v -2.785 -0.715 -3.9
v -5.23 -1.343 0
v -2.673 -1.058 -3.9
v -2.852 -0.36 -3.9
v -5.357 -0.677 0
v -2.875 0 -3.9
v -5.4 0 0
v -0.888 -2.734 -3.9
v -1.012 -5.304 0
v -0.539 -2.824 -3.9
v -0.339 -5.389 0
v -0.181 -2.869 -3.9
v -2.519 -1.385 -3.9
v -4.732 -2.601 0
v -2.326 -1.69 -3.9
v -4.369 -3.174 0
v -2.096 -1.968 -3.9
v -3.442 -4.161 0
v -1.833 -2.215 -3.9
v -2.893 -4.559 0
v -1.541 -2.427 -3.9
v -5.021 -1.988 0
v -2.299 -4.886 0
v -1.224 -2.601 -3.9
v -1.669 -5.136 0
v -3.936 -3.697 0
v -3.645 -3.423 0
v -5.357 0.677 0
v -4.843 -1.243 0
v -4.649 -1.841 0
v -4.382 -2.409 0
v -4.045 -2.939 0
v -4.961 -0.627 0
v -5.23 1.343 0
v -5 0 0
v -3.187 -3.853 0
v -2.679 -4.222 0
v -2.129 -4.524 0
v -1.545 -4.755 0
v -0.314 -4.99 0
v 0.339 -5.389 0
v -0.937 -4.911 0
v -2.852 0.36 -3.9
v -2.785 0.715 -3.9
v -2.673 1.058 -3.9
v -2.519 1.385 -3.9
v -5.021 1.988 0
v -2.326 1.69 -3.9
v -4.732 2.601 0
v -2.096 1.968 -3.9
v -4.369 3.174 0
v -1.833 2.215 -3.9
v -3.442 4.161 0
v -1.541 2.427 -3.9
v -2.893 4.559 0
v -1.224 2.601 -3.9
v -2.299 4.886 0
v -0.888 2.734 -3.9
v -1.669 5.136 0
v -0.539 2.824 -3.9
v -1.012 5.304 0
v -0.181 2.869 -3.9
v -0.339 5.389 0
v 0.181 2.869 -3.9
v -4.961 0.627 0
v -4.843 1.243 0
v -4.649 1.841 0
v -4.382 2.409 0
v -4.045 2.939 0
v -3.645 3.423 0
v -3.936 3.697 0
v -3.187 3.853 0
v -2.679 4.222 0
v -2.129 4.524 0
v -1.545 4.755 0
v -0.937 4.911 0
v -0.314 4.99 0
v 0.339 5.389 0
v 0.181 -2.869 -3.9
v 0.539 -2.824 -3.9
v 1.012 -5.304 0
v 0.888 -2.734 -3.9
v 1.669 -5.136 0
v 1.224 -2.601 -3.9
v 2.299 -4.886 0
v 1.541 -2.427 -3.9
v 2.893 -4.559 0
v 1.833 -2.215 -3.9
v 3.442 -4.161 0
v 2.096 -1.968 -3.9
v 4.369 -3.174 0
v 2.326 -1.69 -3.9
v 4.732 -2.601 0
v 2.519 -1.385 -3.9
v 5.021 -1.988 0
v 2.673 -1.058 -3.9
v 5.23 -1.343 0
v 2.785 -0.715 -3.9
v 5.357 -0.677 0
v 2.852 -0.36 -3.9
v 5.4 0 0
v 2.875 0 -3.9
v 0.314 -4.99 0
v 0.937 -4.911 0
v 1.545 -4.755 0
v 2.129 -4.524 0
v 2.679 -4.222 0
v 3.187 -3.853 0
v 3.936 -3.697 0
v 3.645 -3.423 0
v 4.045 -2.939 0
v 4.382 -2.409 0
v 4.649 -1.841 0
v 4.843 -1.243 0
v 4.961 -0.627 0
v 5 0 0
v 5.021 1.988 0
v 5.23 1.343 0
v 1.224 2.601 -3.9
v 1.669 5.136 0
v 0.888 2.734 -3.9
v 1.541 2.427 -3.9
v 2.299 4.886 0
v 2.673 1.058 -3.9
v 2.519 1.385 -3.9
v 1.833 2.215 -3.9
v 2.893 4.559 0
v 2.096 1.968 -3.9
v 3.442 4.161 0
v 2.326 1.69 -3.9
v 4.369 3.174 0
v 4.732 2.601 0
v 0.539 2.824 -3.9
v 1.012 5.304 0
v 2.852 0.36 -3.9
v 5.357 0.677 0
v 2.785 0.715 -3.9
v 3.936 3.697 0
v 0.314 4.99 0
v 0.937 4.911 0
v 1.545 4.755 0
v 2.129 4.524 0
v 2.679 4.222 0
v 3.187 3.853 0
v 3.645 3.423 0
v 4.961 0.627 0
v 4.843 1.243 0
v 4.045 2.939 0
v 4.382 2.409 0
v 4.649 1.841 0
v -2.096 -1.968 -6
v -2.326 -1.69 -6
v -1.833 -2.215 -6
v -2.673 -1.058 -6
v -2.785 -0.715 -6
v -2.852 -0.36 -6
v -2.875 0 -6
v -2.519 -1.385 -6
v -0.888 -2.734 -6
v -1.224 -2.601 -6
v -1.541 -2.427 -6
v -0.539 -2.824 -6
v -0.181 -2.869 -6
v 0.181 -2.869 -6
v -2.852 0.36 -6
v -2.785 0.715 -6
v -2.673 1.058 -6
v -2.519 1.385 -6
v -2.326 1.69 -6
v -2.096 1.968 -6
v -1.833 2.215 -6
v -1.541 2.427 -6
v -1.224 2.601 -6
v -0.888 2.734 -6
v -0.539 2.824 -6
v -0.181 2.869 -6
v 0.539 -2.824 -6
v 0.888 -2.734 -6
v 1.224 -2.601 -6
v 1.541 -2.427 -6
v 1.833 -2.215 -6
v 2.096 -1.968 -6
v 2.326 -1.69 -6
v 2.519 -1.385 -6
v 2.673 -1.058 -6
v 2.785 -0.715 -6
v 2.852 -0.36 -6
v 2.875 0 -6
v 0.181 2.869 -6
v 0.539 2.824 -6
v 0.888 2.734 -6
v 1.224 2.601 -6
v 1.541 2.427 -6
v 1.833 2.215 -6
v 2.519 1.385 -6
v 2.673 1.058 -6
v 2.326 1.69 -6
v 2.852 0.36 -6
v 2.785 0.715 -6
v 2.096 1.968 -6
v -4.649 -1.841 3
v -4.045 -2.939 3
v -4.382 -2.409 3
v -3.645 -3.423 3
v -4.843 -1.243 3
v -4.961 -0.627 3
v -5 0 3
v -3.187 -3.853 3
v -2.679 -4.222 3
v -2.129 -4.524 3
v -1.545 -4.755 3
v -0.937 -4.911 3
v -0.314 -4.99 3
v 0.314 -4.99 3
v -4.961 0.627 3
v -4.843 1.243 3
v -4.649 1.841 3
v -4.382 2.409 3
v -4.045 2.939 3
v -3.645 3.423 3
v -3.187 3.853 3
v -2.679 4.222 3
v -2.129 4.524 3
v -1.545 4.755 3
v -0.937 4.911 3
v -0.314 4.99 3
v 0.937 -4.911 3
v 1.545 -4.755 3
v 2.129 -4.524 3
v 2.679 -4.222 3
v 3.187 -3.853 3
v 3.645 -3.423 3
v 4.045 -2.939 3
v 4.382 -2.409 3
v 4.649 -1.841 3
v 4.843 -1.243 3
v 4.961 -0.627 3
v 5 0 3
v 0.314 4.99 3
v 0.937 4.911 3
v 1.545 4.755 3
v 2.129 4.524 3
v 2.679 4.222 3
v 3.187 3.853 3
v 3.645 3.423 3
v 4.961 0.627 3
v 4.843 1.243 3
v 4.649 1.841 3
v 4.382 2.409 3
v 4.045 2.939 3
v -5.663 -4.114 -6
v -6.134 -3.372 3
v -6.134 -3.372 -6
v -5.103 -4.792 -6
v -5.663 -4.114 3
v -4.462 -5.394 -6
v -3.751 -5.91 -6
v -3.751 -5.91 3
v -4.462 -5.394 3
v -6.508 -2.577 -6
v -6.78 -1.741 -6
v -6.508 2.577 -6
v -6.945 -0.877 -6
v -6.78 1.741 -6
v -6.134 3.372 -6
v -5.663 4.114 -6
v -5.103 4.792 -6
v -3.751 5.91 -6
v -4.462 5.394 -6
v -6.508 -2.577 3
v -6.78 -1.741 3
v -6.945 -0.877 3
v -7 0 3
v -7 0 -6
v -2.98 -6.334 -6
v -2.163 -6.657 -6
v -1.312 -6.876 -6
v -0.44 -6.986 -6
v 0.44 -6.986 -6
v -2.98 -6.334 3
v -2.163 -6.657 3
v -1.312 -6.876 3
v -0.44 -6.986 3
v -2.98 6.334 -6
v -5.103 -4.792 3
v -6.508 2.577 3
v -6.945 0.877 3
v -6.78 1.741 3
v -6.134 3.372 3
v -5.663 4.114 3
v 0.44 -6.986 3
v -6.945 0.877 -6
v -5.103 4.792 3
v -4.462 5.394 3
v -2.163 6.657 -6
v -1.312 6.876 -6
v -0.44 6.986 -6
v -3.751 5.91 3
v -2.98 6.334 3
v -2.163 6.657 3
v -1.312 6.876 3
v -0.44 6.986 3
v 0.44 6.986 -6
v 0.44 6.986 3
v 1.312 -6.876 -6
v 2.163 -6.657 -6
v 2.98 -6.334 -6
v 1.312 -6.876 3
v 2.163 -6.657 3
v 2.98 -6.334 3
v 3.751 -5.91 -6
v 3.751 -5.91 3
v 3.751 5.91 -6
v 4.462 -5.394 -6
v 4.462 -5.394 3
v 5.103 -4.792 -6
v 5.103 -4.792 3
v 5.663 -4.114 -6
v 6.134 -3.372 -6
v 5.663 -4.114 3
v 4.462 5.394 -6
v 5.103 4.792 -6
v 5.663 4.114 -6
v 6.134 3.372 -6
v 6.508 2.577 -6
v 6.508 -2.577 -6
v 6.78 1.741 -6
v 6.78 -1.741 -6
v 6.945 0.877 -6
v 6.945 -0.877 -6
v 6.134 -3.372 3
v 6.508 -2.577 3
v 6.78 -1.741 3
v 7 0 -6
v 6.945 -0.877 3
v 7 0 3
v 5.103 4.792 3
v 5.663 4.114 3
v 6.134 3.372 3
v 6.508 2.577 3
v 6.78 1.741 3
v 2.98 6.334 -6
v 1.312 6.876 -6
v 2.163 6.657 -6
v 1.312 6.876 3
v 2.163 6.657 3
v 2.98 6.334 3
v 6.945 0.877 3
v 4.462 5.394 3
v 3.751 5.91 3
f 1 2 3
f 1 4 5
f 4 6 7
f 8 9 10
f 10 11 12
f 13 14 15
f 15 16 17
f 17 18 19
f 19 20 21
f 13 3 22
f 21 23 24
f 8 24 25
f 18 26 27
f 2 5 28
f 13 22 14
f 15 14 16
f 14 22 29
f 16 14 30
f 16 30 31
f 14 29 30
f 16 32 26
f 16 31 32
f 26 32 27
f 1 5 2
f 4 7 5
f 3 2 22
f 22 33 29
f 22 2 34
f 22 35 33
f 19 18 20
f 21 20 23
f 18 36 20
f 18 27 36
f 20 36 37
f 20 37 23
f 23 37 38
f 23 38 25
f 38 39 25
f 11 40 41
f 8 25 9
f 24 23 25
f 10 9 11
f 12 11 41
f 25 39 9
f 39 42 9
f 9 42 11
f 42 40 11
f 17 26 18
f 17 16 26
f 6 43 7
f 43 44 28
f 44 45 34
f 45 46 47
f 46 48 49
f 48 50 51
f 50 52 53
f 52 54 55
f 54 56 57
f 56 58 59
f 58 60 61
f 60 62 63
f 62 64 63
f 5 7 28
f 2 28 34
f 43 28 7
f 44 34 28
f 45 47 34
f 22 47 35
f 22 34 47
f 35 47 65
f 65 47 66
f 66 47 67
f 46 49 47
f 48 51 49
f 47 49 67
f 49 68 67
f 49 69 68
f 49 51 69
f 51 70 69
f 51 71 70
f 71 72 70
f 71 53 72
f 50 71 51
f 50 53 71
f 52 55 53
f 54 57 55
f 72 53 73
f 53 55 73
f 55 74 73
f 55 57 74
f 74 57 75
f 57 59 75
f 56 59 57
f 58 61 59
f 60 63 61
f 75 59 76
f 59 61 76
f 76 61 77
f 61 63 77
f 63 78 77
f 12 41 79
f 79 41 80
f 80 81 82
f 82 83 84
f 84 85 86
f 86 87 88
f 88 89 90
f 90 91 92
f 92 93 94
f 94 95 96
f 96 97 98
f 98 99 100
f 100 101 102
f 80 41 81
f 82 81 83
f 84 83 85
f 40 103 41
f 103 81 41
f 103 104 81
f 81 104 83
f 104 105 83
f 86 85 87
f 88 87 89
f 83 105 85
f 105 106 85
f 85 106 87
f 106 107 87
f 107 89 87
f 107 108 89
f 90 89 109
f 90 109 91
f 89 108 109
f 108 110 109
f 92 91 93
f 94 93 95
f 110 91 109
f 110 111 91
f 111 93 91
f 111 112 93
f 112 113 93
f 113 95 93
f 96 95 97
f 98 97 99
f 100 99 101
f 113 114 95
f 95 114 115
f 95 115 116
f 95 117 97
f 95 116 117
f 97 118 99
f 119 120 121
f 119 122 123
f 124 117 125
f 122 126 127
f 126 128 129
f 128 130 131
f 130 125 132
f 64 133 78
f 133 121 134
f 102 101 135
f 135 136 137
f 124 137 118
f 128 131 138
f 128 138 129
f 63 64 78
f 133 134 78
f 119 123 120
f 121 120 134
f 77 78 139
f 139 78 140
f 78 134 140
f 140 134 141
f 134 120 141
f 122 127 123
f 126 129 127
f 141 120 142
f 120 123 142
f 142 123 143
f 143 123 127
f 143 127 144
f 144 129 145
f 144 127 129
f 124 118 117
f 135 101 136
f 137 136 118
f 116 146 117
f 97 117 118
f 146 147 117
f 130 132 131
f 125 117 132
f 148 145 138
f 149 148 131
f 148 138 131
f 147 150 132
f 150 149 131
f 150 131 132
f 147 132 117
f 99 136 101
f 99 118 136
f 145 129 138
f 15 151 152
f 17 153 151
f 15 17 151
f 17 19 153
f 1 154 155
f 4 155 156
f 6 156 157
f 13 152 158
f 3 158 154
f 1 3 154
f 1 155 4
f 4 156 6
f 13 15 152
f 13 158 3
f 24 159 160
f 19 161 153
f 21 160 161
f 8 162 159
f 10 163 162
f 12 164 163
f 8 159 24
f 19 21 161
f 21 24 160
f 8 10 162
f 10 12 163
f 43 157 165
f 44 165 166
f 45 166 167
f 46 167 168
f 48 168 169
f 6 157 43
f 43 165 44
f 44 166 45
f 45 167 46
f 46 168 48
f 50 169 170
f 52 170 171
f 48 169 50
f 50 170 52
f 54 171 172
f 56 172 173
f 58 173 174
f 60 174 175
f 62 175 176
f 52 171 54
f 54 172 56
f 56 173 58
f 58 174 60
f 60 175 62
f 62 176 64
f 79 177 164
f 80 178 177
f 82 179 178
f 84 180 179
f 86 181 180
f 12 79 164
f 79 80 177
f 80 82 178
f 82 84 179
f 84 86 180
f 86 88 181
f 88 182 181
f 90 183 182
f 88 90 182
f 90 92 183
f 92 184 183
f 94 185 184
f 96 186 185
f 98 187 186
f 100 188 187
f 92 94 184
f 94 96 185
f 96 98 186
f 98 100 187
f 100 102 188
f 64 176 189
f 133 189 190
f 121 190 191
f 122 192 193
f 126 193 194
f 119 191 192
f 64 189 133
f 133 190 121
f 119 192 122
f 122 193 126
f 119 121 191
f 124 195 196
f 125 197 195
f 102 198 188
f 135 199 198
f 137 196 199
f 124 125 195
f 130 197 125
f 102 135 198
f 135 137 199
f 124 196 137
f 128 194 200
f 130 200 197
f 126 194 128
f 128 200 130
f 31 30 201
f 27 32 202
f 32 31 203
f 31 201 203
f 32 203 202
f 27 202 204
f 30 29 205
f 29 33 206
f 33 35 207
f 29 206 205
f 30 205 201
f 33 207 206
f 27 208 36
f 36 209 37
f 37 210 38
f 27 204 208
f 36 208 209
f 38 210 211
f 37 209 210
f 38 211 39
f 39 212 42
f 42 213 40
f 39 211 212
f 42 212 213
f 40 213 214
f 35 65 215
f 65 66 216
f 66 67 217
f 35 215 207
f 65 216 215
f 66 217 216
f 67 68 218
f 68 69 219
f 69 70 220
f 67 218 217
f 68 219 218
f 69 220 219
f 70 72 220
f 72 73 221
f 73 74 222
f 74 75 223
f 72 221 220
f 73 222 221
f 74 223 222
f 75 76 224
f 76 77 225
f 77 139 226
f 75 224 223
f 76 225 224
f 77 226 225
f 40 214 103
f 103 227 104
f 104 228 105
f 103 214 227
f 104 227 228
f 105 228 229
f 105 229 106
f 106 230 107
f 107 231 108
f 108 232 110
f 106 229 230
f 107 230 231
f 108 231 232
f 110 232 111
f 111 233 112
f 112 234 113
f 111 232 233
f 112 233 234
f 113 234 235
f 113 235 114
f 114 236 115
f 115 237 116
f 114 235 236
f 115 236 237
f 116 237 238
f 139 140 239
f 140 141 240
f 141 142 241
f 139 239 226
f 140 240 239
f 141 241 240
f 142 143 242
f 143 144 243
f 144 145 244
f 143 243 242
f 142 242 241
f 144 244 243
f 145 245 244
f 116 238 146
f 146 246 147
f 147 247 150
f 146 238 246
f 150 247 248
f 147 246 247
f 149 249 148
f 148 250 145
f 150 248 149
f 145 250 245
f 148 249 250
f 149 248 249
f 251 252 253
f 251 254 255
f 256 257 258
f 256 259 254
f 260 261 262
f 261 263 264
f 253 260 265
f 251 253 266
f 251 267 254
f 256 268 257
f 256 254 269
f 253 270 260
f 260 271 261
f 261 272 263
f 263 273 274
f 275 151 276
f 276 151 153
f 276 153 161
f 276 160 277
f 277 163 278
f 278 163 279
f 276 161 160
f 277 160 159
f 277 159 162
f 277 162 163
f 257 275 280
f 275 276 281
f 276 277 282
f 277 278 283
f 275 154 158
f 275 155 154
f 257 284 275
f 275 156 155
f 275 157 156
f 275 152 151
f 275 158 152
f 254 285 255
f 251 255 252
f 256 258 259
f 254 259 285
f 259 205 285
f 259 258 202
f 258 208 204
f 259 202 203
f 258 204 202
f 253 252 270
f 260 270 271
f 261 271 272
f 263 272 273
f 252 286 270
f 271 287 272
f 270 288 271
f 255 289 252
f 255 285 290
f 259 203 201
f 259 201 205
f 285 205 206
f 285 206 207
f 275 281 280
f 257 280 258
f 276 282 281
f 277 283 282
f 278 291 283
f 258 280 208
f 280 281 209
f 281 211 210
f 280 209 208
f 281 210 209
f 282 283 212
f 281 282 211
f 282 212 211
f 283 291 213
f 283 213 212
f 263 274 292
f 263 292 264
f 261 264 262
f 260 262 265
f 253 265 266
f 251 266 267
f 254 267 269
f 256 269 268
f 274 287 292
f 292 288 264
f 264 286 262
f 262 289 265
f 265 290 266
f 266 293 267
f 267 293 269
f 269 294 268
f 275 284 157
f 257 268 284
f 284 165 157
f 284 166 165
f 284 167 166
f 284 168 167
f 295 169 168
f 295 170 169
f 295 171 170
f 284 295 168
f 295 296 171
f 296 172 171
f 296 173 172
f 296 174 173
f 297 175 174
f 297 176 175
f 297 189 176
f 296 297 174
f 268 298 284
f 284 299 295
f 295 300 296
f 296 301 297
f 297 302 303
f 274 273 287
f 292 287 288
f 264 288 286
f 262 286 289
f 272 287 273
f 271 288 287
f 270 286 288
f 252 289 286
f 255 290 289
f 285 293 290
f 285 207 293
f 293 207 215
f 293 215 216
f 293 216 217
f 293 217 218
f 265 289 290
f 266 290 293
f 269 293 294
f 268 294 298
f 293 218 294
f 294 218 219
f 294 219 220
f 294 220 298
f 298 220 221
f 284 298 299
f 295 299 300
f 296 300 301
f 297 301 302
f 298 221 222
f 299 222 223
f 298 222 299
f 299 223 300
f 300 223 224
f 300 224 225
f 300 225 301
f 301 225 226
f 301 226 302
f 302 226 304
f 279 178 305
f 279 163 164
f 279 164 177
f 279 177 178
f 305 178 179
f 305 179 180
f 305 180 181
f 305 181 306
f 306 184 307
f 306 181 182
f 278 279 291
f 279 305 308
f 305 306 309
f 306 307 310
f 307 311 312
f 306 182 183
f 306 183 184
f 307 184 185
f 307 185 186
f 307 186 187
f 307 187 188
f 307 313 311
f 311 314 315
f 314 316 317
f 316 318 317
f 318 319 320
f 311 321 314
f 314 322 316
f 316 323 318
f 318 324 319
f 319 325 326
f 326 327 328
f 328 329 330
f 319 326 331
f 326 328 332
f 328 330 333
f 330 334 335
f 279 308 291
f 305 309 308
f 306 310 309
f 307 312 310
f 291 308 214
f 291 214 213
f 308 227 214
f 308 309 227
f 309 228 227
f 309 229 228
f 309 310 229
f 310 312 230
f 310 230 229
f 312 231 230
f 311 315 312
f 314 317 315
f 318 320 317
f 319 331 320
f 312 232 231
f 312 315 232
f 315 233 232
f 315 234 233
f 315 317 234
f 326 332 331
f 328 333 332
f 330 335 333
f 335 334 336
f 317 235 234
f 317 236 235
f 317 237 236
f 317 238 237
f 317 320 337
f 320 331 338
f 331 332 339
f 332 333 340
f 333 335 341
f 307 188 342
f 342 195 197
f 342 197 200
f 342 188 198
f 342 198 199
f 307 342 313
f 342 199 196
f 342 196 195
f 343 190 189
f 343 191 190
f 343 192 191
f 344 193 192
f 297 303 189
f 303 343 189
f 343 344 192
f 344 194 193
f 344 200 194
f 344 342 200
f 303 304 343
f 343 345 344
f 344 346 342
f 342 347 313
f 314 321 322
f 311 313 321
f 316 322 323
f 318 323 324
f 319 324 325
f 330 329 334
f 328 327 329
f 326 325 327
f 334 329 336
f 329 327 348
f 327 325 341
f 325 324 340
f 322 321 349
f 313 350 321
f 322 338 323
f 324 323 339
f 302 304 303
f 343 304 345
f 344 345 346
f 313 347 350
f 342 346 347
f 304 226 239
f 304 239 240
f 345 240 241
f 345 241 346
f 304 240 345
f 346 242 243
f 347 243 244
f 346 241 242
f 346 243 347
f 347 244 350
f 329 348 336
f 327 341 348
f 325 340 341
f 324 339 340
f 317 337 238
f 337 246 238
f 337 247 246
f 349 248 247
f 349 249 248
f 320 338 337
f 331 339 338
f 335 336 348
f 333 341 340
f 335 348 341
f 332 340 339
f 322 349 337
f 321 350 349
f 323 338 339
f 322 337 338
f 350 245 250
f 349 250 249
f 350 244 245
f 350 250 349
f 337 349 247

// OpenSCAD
$fn = 50;

difference() {
	union() {
		translate(v = [0, 0, -6.0]) {
			cylinder(h = 9, r = 7.0);
		}
	}
	union() {
		translate(v = [0, 0, 0]) {
			rotate(a = [0, 0, 0]) {
				difference() {
					union() {
						translate(v = [0, 0, -9.0]) {
							cylinder(h = 9, r = 2.6);
						}
						translate(v = [0, 0, -3.9]) {
							cylinder(h = 3.9, r1 = 2.875, r2 = 5.4);
						}
						translate(v = [0, 0, -9.0]) {
							cylinder(h = 9, r = 2.875);
						}
						translate(v = [0, 0, -9.0]) {
							cylinder(h = 9, r = 2.6);
						}
					}
					union();
				}
			}
		}
		#cylinder(h = 3, r = 5.0);
	}
}
